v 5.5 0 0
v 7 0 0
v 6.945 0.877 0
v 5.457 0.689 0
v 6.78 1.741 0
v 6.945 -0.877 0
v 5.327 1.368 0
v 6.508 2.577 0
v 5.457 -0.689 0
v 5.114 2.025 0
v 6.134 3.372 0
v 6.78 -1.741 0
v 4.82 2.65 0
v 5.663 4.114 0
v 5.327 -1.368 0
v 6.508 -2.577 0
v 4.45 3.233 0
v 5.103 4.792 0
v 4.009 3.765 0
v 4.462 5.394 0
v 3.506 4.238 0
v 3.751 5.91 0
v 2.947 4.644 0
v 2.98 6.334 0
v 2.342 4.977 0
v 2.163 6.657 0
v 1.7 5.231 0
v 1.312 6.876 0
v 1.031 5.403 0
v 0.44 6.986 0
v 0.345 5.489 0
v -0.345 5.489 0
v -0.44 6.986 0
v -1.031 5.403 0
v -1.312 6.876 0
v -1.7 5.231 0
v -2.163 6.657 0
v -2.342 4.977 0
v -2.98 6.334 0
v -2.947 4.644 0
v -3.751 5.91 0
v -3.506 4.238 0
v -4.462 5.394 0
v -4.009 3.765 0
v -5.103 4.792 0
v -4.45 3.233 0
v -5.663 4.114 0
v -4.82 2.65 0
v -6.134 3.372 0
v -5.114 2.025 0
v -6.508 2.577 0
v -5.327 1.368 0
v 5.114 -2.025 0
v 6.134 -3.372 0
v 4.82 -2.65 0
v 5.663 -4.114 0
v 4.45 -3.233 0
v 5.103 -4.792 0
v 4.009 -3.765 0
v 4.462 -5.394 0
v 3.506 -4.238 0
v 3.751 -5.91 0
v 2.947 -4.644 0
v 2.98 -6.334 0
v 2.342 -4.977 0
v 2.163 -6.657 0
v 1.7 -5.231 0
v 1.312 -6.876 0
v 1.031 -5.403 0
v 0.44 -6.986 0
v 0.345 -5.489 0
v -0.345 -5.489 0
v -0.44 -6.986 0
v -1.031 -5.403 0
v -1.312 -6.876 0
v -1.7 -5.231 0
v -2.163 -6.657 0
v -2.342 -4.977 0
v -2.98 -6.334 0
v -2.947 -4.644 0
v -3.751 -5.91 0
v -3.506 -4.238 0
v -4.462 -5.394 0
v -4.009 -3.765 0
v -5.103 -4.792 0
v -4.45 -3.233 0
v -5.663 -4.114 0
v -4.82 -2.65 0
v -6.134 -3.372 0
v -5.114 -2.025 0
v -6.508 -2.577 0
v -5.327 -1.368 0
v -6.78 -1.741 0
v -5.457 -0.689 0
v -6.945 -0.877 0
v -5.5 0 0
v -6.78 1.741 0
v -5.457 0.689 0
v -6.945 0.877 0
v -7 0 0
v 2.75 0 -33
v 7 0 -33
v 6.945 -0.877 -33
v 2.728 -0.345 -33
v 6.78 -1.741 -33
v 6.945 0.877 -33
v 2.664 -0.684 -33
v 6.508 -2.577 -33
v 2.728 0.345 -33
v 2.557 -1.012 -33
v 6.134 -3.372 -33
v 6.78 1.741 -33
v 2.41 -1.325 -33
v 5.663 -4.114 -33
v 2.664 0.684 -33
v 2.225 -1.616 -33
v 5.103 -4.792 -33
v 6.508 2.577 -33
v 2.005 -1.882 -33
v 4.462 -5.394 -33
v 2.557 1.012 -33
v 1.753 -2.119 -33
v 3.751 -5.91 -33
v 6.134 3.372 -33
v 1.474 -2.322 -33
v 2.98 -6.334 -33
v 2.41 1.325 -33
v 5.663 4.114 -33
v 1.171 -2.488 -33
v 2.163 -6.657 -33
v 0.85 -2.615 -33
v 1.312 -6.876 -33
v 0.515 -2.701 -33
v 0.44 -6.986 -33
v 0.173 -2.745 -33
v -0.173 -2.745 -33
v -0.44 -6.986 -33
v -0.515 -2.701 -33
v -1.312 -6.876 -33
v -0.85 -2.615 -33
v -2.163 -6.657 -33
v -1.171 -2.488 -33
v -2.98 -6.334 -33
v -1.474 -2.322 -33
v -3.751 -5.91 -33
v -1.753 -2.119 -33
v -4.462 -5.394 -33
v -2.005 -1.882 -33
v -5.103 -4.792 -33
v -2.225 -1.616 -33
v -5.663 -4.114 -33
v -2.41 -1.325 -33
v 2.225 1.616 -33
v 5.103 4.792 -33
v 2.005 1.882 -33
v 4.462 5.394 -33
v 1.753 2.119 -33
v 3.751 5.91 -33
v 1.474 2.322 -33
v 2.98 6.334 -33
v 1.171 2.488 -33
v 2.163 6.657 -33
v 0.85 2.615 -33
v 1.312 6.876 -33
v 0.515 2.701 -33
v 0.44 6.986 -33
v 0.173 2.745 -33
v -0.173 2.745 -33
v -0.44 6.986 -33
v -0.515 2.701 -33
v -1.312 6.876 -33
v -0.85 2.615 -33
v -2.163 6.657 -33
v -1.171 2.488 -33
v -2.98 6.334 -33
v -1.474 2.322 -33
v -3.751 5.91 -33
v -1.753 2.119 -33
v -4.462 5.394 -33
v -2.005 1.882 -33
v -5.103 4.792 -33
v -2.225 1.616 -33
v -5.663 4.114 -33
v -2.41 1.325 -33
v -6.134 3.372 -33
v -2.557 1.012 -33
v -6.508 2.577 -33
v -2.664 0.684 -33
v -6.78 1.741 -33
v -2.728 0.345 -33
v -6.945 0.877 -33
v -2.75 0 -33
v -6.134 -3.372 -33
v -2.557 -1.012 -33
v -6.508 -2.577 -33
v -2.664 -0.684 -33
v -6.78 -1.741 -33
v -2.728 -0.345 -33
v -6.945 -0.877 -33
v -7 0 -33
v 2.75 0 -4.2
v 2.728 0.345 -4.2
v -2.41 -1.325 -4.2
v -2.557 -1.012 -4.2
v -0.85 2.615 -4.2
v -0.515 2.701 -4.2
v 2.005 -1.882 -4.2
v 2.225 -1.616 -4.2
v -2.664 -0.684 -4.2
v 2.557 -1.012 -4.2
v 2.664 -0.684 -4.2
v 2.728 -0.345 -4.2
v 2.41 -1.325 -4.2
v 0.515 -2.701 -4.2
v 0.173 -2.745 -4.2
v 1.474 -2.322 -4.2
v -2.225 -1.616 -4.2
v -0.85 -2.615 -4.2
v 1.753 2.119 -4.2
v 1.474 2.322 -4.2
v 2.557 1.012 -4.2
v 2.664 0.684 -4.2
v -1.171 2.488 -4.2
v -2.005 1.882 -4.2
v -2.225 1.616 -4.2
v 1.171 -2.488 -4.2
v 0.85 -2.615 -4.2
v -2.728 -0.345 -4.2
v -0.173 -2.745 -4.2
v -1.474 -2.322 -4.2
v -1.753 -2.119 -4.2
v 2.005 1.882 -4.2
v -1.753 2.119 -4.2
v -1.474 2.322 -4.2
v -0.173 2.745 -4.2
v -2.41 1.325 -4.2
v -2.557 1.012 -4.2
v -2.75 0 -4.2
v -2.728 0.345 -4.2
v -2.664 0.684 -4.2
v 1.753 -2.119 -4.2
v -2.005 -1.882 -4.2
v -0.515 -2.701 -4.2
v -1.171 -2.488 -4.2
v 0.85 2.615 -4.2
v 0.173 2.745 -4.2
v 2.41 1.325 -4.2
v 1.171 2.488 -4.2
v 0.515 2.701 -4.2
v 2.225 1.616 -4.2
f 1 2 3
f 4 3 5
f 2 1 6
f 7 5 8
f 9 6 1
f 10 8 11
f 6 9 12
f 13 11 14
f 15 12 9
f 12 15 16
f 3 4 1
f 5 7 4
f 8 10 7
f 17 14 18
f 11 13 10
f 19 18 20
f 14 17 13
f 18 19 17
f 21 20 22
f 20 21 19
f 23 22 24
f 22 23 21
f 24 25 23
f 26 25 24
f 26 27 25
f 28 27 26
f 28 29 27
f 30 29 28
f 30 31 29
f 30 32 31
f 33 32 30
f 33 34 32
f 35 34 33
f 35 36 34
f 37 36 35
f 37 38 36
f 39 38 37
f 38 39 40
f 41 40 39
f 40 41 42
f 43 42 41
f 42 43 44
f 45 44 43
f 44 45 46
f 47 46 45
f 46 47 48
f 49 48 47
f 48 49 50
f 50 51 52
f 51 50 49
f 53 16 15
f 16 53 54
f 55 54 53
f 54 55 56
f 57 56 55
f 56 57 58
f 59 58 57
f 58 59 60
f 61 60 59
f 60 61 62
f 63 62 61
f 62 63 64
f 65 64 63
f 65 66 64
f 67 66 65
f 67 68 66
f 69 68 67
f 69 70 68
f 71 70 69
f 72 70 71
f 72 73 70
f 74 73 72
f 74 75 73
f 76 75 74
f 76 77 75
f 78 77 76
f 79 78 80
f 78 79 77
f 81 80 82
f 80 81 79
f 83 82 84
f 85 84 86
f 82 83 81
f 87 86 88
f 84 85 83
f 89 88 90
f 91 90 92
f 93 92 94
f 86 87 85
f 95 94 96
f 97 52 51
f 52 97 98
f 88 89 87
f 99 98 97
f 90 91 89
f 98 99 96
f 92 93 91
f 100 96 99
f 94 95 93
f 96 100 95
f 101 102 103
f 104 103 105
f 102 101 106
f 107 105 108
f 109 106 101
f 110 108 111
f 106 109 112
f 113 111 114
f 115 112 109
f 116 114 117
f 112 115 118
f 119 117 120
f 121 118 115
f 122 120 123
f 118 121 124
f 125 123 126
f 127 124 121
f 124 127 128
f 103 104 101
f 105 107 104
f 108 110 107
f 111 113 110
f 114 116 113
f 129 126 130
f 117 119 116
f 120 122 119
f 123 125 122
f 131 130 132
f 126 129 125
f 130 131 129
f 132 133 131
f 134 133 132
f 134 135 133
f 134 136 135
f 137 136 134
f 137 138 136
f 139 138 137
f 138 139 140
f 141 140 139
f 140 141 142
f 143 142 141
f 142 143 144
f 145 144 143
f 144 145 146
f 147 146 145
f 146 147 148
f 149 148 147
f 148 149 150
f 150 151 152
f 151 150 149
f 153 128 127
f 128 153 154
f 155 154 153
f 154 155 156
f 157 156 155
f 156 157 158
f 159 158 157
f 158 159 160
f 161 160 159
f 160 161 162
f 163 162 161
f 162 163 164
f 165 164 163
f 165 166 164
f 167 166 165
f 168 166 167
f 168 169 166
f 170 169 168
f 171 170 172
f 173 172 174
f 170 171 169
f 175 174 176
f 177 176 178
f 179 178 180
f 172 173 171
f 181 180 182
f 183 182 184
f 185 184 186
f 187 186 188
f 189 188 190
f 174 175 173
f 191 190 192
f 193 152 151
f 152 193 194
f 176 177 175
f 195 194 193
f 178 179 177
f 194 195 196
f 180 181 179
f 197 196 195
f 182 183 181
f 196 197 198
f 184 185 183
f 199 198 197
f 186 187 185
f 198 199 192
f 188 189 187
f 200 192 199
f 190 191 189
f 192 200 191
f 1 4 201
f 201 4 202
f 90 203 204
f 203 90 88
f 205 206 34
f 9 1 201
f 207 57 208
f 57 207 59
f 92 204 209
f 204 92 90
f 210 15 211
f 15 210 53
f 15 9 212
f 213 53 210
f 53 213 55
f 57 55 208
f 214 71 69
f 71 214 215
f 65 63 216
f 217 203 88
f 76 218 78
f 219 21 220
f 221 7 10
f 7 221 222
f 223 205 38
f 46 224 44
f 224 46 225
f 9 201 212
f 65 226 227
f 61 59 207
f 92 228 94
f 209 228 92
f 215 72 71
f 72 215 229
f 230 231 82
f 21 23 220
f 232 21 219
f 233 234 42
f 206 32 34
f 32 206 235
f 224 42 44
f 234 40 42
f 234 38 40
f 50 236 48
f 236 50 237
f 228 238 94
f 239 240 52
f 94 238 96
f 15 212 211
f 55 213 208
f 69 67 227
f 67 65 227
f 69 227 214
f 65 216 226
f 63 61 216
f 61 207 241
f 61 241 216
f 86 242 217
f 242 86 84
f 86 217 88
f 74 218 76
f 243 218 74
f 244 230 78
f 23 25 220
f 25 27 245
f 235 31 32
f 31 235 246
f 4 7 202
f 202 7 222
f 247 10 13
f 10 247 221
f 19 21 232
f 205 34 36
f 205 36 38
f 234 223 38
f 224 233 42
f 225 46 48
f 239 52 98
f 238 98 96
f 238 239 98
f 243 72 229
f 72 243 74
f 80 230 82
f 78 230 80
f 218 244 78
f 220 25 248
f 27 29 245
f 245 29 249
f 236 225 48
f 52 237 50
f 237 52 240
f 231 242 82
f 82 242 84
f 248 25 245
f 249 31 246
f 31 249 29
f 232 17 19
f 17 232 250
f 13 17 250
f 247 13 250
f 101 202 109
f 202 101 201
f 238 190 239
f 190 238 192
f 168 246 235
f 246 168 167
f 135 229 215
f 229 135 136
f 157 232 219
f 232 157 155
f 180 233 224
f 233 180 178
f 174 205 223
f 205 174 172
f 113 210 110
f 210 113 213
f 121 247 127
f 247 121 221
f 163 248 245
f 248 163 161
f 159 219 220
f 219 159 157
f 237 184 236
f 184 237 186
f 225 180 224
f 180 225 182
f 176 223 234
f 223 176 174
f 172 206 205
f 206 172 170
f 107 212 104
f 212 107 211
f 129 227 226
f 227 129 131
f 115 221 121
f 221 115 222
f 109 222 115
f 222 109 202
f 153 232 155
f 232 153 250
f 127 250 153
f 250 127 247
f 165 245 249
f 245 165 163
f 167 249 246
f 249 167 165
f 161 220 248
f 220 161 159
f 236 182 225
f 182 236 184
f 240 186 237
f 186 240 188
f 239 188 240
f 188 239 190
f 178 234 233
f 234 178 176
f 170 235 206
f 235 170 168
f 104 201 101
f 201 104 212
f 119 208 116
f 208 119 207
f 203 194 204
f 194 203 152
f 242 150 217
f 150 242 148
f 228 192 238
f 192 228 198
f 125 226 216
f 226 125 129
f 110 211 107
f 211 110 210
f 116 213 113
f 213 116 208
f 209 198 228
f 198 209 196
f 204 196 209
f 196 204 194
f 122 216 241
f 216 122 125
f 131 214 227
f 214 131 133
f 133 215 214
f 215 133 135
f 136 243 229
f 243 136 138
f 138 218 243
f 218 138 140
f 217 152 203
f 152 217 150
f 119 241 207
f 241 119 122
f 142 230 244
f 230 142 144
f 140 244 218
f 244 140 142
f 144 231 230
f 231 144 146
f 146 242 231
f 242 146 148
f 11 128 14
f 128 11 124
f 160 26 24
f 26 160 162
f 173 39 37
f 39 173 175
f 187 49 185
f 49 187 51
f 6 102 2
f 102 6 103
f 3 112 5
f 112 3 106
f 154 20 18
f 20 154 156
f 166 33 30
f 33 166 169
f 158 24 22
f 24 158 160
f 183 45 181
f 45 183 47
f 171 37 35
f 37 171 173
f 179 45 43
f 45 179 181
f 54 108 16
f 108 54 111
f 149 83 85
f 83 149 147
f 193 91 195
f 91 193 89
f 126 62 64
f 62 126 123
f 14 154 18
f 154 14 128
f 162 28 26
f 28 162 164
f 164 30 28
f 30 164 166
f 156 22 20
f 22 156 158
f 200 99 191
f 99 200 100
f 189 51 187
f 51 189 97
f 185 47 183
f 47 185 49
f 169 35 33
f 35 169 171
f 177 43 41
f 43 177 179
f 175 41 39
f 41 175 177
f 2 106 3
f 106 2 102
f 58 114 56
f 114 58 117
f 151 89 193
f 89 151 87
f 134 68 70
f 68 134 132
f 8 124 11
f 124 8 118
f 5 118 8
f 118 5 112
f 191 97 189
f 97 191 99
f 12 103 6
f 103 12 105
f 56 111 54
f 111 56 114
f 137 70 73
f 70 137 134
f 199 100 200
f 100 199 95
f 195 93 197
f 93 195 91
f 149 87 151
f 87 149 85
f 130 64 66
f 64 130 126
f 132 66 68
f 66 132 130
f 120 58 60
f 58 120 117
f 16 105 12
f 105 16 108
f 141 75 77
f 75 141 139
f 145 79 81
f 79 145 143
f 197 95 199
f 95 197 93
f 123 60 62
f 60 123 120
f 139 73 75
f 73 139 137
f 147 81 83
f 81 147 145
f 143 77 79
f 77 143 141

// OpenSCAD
$fn = 50;


difference() {
	union() {
		translate(v = [0, 0, -33.0000000000]) {
			cylinder(h = 33, r = 7.0000000000);
		}
		cylinder(h = 0, r = 10.0000000000);
	}
	union() {
		translate(v = [0, 0, 0]) {
			rotate(a = [0, 0, 0]) {
				difference() {
					union() {
						#translate(v = [0, 0, -33.0000000000]) {
							cylinder(h = 33, r = 2.2500000000);
						}
						#translate(v = [0, 0, -4.2000000000]) {
							cylinder(h = 4.2000000000, r1 = 2.7500000000, r2 = 5.5000000000);
						}
						#translate(v = [0, 0, -33.0000000000]) {
							cylinder(h = 33, r = 2.7500000000);
						}
						#translate(v = [0, 0, -33.0000000000]) {
							cylinder(h = 33, r = 2.2500000000);
						}
					}
					union();
				}
			}
		}
	}
}
